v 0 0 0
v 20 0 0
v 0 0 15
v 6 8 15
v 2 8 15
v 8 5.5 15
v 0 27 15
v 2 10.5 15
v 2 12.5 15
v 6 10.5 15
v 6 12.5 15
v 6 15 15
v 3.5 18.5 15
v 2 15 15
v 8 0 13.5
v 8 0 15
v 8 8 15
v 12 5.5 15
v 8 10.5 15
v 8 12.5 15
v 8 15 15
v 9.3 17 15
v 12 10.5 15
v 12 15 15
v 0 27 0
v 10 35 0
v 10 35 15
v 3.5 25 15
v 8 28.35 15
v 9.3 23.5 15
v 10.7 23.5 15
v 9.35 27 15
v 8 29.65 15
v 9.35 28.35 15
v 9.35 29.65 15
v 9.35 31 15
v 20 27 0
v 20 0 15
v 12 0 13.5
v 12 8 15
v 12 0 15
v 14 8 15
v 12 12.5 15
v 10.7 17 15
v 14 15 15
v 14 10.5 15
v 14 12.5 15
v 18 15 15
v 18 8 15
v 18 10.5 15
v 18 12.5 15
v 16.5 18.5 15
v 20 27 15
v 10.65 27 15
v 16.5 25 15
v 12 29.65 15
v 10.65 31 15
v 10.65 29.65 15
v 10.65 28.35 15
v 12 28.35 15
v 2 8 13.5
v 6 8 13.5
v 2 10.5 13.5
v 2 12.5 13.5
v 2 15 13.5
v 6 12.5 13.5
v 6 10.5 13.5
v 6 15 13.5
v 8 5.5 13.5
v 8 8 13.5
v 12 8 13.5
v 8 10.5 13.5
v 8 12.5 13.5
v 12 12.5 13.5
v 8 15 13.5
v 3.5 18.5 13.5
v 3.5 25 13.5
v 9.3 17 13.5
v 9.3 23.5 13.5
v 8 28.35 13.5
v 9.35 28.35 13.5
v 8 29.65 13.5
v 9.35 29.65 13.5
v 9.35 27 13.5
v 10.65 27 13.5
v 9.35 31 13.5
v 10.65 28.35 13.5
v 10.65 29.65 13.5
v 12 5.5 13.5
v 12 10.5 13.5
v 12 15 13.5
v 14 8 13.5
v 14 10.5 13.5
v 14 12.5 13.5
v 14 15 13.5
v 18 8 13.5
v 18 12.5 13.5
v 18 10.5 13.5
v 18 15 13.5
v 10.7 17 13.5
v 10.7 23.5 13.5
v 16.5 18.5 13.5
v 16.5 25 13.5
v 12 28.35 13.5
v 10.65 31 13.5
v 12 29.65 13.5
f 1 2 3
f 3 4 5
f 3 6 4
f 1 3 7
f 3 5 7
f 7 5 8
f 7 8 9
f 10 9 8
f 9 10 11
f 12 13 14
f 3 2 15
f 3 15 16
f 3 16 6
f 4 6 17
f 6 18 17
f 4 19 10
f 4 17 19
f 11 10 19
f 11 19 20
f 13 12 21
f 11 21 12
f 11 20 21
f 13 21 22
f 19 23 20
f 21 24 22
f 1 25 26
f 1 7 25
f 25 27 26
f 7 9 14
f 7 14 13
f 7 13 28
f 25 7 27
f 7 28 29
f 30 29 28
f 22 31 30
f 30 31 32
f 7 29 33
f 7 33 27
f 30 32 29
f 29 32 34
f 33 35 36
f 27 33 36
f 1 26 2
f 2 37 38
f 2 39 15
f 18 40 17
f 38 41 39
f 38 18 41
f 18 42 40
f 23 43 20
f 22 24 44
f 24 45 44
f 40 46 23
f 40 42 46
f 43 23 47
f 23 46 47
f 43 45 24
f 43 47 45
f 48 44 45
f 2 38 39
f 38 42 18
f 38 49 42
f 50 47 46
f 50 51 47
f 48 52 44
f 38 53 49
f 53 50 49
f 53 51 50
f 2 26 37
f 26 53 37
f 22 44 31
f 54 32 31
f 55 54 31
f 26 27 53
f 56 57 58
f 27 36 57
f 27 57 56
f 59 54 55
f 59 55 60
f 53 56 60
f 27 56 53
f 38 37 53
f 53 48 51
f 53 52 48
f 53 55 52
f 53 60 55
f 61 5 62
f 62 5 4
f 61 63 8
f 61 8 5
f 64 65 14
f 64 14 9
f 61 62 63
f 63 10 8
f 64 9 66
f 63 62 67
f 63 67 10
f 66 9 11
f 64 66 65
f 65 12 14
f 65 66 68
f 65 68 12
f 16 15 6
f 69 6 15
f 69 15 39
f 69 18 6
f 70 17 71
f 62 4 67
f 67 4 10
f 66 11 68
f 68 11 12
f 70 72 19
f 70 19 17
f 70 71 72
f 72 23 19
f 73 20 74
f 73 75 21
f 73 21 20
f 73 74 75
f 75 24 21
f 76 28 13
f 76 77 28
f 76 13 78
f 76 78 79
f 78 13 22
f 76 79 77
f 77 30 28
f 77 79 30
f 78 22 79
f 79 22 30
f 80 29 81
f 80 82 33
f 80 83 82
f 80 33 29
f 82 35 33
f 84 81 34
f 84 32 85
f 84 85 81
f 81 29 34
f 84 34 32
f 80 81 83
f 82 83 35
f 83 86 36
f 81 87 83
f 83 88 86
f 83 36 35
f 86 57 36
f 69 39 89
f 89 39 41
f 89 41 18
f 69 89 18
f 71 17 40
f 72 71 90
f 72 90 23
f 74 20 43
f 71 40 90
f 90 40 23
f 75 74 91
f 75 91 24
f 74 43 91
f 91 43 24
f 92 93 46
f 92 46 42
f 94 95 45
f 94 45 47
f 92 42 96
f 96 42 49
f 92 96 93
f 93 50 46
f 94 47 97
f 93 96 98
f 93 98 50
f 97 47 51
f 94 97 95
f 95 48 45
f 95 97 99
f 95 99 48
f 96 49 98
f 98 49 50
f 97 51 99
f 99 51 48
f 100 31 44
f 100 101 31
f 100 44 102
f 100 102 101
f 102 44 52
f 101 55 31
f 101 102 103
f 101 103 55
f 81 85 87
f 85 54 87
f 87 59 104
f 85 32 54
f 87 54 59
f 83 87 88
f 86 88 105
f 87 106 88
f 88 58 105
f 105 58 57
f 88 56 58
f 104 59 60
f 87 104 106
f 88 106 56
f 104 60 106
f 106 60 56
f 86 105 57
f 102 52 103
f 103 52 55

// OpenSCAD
// Facade game piece in mm: X width, Y height, Z depth.
// Place Z=0 flat on the build plate; all recessed details are 1.5 mm deep.
$fn=64;
module rect(x,y,w,h){translate([x,y]) square([w,h]);}
module disk(x,y,r){translate([x,y]) circle(r=r);}
module line(a,b,w=1.5){hull(){translate(a) circle(d=w);translate(b) circle(d=w);}}
module path(points,w=1.5){for(i=[0:len(points)-2]) line(points[i],points[i+1],w);}
module cross_icon(x,y,size=6,bar=1.8){union(){rect(x-size/2,y-bar/2,size,bar);rect(x-bar/2,y-size/2,bar,size);}}
module tank(x,y,w,h){union(){rect(x,y,w,h-w/2);disk(x+w/2,y+h-w/2,w/2);}}
module ring(x,y,r,w=1.3){difference(){disk(x,y,r);disk(x,y,r-w);}}

module silhouette(){
polygon([[0,0],[20,0],[20,27],[10,35],[0,27]]);
}
module facade_recesses(){union(){
// Separate pages leave a strong central fold.
polygon([[3.5,18.5],[3.5,25],[9.3,23.5],[9.3,17]]);
polygon([[10.7,17],[10.7,23.5],[16.5,25],[16.5,18.5]]);
cross_icon(10,29,4,1.3);
for(x=[2,8,14]) for(y=[8,12.5]) rect(x,y,4,2.5);
rect(8,0,4,5.5);
}}
difference(){
 linear_extrude(height=15) silhouette();
 translate([0,0,13.5]) linear_extrude(height=2) facade_recesses();
}
